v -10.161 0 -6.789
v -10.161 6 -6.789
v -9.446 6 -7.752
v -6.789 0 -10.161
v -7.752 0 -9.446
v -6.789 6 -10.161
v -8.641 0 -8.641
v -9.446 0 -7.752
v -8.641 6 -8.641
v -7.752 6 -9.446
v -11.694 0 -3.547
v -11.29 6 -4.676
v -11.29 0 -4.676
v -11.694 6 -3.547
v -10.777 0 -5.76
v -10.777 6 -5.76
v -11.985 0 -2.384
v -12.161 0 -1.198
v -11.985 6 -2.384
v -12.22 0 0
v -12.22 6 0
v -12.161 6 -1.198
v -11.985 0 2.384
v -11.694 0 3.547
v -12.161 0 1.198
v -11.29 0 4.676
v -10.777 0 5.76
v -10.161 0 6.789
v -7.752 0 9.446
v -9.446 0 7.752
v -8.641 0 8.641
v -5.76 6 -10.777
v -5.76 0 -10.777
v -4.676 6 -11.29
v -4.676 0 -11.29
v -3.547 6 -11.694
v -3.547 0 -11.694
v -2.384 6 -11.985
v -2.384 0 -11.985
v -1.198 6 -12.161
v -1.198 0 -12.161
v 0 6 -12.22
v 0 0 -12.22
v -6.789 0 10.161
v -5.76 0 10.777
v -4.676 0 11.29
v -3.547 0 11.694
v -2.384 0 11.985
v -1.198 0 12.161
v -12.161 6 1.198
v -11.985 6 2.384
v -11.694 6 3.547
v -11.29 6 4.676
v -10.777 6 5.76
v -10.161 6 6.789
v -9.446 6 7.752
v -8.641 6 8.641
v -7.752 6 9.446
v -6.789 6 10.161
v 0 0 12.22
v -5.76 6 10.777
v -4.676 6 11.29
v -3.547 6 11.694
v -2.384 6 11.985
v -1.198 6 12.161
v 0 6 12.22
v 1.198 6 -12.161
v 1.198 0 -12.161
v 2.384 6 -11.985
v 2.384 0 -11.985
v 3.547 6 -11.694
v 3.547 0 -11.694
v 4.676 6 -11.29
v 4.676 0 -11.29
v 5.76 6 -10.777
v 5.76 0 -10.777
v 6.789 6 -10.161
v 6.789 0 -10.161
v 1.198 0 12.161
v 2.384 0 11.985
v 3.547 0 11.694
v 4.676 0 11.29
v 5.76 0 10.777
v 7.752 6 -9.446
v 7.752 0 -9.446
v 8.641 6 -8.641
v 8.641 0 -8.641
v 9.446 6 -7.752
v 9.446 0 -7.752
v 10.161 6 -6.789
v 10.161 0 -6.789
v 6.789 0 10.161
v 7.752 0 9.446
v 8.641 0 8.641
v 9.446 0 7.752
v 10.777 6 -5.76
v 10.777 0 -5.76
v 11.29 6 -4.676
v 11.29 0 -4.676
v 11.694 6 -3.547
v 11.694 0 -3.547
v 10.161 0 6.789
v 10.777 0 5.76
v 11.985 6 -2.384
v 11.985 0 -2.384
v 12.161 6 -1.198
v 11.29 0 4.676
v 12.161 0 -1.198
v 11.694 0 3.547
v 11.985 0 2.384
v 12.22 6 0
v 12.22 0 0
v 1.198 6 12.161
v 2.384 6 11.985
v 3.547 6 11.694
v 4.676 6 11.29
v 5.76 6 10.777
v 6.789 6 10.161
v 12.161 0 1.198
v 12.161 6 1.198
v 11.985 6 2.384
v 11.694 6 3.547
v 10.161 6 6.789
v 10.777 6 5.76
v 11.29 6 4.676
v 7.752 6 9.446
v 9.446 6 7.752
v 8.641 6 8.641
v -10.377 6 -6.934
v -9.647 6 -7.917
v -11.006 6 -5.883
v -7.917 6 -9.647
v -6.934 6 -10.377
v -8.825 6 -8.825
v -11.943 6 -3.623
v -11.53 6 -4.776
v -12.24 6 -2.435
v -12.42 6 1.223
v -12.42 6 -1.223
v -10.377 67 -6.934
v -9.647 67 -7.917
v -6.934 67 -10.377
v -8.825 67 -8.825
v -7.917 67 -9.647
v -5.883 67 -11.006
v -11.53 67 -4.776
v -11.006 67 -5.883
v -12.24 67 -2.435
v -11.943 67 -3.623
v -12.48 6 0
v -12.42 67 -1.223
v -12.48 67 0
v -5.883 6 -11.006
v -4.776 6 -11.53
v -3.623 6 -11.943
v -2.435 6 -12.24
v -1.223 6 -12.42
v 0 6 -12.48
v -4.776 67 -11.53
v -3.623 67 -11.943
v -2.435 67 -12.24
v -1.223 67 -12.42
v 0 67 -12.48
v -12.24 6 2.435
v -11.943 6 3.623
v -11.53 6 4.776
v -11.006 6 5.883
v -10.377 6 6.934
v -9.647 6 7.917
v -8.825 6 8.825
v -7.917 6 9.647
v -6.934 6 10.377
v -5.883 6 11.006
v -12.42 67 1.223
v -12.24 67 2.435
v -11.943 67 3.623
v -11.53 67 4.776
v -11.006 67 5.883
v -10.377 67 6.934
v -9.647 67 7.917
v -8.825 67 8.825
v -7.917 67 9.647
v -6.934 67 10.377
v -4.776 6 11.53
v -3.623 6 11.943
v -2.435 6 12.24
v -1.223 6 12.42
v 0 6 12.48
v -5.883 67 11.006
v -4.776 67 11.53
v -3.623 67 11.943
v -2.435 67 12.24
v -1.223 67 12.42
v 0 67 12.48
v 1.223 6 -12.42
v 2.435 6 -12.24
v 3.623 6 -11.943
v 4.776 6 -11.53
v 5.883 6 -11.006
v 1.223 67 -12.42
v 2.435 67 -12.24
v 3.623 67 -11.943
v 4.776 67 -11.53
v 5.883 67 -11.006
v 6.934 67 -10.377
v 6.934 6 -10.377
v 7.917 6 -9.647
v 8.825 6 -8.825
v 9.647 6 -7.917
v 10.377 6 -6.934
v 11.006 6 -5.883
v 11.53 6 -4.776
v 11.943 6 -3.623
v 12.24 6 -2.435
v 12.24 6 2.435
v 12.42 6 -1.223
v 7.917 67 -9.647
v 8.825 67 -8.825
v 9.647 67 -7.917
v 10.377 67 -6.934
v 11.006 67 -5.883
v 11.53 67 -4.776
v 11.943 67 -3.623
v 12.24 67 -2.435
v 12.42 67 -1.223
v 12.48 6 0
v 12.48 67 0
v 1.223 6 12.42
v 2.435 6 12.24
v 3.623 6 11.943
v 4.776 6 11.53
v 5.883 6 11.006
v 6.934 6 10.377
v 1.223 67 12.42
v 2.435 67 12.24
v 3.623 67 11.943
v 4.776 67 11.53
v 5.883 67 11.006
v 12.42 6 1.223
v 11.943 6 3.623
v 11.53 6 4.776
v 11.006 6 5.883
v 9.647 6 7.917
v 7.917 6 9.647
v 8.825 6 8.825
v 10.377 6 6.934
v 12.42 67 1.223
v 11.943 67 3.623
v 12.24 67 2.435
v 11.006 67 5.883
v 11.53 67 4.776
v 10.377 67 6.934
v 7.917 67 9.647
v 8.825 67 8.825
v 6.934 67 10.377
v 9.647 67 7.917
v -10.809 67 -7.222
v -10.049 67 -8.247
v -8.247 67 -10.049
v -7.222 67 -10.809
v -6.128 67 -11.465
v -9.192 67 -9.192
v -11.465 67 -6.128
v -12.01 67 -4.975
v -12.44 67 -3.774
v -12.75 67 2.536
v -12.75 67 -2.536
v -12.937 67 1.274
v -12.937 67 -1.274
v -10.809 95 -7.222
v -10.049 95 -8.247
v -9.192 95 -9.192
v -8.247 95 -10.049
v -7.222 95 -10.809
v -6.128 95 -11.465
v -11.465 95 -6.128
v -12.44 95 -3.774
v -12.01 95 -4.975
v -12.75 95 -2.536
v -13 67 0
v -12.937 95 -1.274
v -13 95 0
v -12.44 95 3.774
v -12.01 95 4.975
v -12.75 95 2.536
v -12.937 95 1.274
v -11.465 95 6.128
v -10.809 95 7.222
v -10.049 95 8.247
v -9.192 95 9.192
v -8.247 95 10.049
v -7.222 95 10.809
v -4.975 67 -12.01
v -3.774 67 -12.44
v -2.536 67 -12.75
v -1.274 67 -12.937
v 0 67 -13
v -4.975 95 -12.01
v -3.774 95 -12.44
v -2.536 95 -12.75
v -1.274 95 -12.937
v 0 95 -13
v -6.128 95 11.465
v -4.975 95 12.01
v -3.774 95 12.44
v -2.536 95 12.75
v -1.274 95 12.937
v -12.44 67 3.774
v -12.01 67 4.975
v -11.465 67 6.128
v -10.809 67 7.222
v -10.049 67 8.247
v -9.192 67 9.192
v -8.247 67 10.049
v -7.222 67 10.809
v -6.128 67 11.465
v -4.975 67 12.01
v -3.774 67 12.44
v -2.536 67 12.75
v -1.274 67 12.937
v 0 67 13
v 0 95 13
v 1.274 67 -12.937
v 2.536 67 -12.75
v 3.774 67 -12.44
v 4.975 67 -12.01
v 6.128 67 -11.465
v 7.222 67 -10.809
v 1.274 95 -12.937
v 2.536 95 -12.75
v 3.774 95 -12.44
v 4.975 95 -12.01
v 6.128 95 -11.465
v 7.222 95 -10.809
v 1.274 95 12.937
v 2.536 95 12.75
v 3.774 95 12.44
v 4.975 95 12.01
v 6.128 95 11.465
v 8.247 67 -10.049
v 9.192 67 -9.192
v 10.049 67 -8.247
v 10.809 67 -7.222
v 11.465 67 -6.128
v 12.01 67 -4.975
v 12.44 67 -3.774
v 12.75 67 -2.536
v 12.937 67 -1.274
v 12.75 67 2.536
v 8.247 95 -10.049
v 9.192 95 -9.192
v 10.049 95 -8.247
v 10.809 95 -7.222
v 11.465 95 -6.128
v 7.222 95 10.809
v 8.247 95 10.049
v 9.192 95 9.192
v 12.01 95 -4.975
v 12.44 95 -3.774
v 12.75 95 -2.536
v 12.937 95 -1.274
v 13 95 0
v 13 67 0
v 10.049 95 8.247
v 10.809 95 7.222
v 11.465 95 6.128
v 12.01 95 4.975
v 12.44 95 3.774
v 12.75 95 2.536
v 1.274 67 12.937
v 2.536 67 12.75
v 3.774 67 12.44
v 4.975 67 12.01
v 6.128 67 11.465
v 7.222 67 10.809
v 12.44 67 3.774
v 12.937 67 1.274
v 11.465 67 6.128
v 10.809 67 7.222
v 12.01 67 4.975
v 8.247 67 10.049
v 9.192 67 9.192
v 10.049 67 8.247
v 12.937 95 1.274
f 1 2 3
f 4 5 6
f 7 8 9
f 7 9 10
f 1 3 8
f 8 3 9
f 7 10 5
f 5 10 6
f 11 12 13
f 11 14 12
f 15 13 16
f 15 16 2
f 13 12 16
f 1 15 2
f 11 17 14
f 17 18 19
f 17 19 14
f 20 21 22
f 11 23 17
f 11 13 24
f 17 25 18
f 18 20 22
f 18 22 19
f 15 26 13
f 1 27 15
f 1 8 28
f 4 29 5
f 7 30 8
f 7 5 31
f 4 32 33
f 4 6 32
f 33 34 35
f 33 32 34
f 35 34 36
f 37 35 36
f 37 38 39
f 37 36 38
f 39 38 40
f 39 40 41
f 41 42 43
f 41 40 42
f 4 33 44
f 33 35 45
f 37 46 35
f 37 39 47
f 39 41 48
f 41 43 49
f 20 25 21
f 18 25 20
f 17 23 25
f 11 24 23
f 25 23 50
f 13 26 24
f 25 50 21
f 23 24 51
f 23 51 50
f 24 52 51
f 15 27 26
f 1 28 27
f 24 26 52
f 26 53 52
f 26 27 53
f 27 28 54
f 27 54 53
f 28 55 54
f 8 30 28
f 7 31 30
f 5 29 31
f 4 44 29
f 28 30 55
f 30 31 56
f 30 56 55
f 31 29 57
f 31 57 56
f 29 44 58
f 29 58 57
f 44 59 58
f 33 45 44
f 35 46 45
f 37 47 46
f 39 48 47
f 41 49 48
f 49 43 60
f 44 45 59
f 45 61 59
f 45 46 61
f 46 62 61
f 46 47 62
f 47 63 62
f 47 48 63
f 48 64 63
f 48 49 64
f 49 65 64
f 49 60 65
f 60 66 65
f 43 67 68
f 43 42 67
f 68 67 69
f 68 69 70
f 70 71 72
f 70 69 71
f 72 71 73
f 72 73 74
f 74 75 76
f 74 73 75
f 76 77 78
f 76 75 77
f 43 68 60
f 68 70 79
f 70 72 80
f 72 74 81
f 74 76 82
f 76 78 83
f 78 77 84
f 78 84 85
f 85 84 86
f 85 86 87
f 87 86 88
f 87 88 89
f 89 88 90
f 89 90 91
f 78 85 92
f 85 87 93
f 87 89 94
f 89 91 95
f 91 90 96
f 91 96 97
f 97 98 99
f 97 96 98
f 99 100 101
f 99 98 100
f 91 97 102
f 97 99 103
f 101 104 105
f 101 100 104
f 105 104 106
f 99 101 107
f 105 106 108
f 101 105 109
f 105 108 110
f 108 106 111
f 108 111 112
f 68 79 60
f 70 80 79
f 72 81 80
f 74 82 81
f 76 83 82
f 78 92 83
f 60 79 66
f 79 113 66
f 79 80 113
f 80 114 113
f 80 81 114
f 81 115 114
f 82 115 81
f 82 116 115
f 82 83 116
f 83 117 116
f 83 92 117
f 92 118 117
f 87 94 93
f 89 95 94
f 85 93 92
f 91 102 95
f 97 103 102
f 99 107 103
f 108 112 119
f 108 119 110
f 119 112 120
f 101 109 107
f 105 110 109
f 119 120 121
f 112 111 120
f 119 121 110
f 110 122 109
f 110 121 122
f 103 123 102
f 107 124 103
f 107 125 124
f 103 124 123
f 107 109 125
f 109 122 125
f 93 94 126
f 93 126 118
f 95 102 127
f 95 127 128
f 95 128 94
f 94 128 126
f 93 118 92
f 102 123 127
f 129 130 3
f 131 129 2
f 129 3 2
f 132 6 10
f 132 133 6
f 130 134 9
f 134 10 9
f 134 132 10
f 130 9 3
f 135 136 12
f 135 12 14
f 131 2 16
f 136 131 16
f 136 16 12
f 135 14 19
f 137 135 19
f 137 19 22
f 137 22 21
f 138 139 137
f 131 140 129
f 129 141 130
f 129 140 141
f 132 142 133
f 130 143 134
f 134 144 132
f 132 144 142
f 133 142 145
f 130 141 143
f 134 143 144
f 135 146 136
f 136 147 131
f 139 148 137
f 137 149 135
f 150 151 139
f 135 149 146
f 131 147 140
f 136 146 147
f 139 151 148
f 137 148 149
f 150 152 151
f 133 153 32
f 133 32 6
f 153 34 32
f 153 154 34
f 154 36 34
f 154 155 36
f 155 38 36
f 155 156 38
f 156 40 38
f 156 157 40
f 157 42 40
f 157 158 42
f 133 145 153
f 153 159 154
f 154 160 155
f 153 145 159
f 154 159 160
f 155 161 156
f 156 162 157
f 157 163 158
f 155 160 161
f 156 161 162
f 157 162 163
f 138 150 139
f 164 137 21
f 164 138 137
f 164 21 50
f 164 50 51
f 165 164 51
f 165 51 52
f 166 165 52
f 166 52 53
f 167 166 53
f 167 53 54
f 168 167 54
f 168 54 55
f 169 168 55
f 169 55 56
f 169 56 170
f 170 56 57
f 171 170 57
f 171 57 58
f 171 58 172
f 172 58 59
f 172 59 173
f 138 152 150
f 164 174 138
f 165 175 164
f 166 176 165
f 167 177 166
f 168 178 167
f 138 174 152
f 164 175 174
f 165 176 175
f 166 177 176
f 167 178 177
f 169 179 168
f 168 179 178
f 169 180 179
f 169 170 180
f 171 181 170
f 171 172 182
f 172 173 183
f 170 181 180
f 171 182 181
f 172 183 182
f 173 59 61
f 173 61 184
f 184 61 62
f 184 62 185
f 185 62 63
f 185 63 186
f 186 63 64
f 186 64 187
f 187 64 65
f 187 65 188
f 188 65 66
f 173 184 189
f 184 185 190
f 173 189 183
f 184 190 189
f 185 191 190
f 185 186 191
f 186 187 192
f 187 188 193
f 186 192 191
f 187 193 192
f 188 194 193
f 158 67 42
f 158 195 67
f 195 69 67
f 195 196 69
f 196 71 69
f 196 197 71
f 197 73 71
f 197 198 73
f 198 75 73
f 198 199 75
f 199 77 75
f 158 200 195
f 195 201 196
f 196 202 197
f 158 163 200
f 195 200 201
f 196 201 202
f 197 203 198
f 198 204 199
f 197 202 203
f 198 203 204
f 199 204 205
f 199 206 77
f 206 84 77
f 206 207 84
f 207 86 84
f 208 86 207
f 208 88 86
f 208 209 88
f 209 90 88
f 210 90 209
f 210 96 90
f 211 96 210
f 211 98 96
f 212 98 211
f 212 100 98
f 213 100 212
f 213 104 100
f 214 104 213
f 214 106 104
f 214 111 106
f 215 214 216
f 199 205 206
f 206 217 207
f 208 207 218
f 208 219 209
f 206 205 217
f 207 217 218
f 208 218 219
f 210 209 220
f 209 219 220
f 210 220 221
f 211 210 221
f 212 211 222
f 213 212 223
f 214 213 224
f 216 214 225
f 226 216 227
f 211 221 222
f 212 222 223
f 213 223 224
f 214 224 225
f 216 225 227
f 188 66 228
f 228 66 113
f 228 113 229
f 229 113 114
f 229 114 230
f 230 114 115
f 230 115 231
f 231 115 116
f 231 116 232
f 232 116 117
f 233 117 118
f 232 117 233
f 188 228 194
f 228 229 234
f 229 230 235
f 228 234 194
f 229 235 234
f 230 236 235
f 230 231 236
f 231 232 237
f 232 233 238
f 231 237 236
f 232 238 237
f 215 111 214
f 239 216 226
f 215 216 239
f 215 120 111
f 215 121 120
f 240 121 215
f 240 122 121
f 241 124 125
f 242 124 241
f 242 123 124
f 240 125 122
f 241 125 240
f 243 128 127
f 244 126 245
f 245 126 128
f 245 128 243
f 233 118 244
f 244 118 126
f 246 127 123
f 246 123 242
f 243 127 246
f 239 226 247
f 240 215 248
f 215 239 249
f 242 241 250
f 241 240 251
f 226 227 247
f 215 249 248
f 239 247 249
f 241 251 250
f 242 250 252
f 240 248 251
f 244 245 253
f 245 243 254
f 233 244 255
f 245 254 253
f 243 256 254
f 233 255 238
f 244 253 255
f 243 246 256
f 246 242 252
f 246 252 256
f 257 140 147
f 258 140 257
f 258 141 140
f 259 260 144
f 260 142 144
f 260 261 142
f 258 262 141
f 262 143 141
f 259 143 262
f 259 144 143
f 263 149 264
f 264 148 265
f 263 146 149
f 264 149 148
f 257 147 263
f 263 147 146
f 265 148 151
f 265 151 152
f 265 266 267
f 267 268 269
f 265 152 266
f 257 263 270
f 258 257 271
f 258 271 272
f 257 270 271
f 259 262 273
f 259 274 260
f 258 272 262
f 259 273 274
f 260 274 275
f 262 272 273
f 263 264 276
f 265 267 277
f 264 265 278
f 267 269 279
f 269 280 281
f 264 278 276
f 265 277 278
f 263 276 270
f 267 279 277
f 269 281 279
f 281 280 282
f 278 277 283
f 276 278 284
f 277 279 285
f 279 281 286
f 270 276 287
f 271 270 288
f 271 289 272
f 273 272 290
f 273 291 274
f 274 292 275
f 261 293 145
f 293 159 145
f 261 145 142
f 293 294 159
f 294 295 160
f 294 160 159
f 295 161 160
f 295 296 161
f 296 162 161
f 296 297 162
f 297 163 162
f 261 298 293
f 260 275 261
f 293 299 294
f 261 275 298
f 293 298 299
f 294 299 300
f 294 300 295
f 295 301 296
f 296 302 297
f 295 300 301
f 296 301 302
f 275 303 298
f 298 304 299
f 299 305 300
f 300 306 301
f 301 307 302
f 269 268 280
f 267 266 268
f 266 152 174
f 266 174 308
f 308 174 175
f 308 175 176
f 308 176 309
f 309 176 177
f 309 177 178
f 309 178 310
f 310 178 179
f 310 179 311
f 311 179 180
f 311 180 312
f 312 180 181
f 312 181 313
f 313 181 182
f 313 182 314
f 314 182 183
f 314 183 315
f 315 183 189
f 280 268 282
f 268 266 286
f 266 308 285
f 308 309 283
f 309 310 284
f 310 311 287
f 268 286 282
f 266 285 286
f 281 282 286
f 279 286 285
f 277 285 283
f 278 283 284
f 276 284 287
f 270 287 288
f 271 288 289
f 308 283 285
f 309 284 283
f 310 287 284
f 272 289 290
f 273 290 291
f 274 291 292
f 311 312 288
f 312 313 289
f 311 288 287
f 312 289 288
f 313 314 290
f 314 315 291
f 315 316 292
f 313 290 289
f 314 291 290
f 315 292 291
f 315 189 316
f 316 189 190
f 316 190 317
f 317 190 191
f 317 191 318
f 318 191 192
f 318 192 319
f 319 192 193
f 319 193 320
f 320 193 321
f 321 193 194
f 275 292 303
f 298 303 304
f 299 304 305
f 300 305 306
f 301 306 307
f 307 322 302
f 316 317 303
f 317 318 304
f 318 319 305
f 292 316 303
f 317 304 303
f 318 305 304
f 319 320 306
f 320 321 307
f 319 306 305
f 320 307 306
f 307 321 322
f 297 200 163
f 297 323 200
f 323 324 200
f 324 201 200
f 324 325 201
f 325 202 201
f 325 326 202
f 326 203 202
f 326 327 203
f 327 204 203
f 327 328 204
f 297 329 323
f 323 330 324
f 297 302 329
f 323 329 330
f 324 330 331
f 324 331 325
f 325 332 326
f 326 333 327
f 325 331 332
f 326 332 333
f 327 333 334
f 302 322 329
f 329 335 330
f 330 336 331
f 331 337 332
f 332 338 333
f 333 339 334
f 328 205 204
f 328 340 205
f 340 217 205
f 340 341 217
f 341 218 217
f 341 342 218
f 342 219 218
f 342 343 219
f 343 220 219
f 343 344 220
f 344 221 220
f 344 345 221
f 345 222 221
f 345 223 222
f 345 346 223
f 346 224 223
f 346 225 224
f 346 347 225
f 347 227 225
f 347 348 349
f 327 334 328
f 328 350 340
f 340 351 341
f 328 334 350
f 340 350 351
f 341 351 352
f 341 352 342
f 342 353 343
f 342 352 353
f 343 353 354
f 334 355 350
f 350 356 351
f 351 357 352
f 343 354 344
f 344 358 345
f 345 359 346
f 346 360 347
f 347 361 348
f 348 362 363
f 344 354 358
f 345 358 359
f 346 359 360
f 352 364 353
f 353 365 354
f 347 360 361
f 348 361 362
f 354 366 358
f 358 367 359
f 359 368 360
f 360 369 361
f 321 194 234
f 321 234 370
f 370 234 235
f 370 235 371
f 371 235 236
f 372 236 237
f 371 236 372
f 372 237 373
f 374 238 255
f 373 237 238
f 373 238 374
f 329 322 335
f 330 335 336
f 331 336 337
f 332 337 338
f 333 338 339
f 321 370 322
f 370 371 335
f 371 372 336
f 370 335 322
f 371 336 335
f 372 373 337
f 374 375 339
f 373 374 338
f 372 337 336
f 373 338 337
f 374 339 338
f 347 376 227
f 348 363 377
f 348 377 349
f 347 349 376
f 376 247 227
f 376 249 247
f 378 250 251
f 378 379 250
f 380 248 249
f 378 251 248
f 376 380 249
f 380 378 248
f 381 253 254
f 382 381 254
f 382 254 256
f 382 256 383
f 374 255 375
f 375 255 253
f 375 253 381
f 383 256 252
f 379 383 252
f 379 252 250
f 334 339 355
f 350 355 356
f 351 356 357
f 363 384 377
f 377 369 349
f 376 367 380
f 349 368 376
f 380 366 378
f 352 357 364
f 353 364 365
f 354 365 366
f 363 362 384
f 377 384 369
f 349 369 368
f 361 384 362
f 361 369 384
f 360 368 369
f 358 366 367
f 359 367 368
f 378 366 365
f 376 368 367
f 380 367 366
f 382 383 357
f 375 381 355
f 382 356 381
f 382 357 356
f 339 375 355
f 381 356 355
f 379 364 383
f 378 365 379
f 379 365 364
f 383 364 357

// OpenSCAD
// Medium Prit glue stick
// Representative PLUS Pritt medium NS-702, approximately 20 g and 26 × 95 mm. The red closed body and dark twist base are simplified, with estimated cap and base lengths. The workshop specimen has not been measured.
// Units: mm
$fn = 64;
union() {
    // Twist base
    color([0.1843, 0.1804, 0.1961])
    translate([0, 0, 0]) rotate([-90, 0, 0])
        cylinder(h=6, r1=12.219999999999999, r2=12.219999999999999, $fn=64);
    // Glue stick body
    color([0.6863, 0.1059, 0.1569])
    translate([0, 6, 0]) rotate([-90, 0, 0])
        cylinder(h=61, r1=12.48, r2=12.48, $fn=64);
    // Closed cap
    color([0.6863, 0.1059, 0.1569])
    translate([0, 67, 0]) rotate([-90, 0, 0])
        cylinder(h=28, r1=13.0, r2=13.0, $fn=64);
}
